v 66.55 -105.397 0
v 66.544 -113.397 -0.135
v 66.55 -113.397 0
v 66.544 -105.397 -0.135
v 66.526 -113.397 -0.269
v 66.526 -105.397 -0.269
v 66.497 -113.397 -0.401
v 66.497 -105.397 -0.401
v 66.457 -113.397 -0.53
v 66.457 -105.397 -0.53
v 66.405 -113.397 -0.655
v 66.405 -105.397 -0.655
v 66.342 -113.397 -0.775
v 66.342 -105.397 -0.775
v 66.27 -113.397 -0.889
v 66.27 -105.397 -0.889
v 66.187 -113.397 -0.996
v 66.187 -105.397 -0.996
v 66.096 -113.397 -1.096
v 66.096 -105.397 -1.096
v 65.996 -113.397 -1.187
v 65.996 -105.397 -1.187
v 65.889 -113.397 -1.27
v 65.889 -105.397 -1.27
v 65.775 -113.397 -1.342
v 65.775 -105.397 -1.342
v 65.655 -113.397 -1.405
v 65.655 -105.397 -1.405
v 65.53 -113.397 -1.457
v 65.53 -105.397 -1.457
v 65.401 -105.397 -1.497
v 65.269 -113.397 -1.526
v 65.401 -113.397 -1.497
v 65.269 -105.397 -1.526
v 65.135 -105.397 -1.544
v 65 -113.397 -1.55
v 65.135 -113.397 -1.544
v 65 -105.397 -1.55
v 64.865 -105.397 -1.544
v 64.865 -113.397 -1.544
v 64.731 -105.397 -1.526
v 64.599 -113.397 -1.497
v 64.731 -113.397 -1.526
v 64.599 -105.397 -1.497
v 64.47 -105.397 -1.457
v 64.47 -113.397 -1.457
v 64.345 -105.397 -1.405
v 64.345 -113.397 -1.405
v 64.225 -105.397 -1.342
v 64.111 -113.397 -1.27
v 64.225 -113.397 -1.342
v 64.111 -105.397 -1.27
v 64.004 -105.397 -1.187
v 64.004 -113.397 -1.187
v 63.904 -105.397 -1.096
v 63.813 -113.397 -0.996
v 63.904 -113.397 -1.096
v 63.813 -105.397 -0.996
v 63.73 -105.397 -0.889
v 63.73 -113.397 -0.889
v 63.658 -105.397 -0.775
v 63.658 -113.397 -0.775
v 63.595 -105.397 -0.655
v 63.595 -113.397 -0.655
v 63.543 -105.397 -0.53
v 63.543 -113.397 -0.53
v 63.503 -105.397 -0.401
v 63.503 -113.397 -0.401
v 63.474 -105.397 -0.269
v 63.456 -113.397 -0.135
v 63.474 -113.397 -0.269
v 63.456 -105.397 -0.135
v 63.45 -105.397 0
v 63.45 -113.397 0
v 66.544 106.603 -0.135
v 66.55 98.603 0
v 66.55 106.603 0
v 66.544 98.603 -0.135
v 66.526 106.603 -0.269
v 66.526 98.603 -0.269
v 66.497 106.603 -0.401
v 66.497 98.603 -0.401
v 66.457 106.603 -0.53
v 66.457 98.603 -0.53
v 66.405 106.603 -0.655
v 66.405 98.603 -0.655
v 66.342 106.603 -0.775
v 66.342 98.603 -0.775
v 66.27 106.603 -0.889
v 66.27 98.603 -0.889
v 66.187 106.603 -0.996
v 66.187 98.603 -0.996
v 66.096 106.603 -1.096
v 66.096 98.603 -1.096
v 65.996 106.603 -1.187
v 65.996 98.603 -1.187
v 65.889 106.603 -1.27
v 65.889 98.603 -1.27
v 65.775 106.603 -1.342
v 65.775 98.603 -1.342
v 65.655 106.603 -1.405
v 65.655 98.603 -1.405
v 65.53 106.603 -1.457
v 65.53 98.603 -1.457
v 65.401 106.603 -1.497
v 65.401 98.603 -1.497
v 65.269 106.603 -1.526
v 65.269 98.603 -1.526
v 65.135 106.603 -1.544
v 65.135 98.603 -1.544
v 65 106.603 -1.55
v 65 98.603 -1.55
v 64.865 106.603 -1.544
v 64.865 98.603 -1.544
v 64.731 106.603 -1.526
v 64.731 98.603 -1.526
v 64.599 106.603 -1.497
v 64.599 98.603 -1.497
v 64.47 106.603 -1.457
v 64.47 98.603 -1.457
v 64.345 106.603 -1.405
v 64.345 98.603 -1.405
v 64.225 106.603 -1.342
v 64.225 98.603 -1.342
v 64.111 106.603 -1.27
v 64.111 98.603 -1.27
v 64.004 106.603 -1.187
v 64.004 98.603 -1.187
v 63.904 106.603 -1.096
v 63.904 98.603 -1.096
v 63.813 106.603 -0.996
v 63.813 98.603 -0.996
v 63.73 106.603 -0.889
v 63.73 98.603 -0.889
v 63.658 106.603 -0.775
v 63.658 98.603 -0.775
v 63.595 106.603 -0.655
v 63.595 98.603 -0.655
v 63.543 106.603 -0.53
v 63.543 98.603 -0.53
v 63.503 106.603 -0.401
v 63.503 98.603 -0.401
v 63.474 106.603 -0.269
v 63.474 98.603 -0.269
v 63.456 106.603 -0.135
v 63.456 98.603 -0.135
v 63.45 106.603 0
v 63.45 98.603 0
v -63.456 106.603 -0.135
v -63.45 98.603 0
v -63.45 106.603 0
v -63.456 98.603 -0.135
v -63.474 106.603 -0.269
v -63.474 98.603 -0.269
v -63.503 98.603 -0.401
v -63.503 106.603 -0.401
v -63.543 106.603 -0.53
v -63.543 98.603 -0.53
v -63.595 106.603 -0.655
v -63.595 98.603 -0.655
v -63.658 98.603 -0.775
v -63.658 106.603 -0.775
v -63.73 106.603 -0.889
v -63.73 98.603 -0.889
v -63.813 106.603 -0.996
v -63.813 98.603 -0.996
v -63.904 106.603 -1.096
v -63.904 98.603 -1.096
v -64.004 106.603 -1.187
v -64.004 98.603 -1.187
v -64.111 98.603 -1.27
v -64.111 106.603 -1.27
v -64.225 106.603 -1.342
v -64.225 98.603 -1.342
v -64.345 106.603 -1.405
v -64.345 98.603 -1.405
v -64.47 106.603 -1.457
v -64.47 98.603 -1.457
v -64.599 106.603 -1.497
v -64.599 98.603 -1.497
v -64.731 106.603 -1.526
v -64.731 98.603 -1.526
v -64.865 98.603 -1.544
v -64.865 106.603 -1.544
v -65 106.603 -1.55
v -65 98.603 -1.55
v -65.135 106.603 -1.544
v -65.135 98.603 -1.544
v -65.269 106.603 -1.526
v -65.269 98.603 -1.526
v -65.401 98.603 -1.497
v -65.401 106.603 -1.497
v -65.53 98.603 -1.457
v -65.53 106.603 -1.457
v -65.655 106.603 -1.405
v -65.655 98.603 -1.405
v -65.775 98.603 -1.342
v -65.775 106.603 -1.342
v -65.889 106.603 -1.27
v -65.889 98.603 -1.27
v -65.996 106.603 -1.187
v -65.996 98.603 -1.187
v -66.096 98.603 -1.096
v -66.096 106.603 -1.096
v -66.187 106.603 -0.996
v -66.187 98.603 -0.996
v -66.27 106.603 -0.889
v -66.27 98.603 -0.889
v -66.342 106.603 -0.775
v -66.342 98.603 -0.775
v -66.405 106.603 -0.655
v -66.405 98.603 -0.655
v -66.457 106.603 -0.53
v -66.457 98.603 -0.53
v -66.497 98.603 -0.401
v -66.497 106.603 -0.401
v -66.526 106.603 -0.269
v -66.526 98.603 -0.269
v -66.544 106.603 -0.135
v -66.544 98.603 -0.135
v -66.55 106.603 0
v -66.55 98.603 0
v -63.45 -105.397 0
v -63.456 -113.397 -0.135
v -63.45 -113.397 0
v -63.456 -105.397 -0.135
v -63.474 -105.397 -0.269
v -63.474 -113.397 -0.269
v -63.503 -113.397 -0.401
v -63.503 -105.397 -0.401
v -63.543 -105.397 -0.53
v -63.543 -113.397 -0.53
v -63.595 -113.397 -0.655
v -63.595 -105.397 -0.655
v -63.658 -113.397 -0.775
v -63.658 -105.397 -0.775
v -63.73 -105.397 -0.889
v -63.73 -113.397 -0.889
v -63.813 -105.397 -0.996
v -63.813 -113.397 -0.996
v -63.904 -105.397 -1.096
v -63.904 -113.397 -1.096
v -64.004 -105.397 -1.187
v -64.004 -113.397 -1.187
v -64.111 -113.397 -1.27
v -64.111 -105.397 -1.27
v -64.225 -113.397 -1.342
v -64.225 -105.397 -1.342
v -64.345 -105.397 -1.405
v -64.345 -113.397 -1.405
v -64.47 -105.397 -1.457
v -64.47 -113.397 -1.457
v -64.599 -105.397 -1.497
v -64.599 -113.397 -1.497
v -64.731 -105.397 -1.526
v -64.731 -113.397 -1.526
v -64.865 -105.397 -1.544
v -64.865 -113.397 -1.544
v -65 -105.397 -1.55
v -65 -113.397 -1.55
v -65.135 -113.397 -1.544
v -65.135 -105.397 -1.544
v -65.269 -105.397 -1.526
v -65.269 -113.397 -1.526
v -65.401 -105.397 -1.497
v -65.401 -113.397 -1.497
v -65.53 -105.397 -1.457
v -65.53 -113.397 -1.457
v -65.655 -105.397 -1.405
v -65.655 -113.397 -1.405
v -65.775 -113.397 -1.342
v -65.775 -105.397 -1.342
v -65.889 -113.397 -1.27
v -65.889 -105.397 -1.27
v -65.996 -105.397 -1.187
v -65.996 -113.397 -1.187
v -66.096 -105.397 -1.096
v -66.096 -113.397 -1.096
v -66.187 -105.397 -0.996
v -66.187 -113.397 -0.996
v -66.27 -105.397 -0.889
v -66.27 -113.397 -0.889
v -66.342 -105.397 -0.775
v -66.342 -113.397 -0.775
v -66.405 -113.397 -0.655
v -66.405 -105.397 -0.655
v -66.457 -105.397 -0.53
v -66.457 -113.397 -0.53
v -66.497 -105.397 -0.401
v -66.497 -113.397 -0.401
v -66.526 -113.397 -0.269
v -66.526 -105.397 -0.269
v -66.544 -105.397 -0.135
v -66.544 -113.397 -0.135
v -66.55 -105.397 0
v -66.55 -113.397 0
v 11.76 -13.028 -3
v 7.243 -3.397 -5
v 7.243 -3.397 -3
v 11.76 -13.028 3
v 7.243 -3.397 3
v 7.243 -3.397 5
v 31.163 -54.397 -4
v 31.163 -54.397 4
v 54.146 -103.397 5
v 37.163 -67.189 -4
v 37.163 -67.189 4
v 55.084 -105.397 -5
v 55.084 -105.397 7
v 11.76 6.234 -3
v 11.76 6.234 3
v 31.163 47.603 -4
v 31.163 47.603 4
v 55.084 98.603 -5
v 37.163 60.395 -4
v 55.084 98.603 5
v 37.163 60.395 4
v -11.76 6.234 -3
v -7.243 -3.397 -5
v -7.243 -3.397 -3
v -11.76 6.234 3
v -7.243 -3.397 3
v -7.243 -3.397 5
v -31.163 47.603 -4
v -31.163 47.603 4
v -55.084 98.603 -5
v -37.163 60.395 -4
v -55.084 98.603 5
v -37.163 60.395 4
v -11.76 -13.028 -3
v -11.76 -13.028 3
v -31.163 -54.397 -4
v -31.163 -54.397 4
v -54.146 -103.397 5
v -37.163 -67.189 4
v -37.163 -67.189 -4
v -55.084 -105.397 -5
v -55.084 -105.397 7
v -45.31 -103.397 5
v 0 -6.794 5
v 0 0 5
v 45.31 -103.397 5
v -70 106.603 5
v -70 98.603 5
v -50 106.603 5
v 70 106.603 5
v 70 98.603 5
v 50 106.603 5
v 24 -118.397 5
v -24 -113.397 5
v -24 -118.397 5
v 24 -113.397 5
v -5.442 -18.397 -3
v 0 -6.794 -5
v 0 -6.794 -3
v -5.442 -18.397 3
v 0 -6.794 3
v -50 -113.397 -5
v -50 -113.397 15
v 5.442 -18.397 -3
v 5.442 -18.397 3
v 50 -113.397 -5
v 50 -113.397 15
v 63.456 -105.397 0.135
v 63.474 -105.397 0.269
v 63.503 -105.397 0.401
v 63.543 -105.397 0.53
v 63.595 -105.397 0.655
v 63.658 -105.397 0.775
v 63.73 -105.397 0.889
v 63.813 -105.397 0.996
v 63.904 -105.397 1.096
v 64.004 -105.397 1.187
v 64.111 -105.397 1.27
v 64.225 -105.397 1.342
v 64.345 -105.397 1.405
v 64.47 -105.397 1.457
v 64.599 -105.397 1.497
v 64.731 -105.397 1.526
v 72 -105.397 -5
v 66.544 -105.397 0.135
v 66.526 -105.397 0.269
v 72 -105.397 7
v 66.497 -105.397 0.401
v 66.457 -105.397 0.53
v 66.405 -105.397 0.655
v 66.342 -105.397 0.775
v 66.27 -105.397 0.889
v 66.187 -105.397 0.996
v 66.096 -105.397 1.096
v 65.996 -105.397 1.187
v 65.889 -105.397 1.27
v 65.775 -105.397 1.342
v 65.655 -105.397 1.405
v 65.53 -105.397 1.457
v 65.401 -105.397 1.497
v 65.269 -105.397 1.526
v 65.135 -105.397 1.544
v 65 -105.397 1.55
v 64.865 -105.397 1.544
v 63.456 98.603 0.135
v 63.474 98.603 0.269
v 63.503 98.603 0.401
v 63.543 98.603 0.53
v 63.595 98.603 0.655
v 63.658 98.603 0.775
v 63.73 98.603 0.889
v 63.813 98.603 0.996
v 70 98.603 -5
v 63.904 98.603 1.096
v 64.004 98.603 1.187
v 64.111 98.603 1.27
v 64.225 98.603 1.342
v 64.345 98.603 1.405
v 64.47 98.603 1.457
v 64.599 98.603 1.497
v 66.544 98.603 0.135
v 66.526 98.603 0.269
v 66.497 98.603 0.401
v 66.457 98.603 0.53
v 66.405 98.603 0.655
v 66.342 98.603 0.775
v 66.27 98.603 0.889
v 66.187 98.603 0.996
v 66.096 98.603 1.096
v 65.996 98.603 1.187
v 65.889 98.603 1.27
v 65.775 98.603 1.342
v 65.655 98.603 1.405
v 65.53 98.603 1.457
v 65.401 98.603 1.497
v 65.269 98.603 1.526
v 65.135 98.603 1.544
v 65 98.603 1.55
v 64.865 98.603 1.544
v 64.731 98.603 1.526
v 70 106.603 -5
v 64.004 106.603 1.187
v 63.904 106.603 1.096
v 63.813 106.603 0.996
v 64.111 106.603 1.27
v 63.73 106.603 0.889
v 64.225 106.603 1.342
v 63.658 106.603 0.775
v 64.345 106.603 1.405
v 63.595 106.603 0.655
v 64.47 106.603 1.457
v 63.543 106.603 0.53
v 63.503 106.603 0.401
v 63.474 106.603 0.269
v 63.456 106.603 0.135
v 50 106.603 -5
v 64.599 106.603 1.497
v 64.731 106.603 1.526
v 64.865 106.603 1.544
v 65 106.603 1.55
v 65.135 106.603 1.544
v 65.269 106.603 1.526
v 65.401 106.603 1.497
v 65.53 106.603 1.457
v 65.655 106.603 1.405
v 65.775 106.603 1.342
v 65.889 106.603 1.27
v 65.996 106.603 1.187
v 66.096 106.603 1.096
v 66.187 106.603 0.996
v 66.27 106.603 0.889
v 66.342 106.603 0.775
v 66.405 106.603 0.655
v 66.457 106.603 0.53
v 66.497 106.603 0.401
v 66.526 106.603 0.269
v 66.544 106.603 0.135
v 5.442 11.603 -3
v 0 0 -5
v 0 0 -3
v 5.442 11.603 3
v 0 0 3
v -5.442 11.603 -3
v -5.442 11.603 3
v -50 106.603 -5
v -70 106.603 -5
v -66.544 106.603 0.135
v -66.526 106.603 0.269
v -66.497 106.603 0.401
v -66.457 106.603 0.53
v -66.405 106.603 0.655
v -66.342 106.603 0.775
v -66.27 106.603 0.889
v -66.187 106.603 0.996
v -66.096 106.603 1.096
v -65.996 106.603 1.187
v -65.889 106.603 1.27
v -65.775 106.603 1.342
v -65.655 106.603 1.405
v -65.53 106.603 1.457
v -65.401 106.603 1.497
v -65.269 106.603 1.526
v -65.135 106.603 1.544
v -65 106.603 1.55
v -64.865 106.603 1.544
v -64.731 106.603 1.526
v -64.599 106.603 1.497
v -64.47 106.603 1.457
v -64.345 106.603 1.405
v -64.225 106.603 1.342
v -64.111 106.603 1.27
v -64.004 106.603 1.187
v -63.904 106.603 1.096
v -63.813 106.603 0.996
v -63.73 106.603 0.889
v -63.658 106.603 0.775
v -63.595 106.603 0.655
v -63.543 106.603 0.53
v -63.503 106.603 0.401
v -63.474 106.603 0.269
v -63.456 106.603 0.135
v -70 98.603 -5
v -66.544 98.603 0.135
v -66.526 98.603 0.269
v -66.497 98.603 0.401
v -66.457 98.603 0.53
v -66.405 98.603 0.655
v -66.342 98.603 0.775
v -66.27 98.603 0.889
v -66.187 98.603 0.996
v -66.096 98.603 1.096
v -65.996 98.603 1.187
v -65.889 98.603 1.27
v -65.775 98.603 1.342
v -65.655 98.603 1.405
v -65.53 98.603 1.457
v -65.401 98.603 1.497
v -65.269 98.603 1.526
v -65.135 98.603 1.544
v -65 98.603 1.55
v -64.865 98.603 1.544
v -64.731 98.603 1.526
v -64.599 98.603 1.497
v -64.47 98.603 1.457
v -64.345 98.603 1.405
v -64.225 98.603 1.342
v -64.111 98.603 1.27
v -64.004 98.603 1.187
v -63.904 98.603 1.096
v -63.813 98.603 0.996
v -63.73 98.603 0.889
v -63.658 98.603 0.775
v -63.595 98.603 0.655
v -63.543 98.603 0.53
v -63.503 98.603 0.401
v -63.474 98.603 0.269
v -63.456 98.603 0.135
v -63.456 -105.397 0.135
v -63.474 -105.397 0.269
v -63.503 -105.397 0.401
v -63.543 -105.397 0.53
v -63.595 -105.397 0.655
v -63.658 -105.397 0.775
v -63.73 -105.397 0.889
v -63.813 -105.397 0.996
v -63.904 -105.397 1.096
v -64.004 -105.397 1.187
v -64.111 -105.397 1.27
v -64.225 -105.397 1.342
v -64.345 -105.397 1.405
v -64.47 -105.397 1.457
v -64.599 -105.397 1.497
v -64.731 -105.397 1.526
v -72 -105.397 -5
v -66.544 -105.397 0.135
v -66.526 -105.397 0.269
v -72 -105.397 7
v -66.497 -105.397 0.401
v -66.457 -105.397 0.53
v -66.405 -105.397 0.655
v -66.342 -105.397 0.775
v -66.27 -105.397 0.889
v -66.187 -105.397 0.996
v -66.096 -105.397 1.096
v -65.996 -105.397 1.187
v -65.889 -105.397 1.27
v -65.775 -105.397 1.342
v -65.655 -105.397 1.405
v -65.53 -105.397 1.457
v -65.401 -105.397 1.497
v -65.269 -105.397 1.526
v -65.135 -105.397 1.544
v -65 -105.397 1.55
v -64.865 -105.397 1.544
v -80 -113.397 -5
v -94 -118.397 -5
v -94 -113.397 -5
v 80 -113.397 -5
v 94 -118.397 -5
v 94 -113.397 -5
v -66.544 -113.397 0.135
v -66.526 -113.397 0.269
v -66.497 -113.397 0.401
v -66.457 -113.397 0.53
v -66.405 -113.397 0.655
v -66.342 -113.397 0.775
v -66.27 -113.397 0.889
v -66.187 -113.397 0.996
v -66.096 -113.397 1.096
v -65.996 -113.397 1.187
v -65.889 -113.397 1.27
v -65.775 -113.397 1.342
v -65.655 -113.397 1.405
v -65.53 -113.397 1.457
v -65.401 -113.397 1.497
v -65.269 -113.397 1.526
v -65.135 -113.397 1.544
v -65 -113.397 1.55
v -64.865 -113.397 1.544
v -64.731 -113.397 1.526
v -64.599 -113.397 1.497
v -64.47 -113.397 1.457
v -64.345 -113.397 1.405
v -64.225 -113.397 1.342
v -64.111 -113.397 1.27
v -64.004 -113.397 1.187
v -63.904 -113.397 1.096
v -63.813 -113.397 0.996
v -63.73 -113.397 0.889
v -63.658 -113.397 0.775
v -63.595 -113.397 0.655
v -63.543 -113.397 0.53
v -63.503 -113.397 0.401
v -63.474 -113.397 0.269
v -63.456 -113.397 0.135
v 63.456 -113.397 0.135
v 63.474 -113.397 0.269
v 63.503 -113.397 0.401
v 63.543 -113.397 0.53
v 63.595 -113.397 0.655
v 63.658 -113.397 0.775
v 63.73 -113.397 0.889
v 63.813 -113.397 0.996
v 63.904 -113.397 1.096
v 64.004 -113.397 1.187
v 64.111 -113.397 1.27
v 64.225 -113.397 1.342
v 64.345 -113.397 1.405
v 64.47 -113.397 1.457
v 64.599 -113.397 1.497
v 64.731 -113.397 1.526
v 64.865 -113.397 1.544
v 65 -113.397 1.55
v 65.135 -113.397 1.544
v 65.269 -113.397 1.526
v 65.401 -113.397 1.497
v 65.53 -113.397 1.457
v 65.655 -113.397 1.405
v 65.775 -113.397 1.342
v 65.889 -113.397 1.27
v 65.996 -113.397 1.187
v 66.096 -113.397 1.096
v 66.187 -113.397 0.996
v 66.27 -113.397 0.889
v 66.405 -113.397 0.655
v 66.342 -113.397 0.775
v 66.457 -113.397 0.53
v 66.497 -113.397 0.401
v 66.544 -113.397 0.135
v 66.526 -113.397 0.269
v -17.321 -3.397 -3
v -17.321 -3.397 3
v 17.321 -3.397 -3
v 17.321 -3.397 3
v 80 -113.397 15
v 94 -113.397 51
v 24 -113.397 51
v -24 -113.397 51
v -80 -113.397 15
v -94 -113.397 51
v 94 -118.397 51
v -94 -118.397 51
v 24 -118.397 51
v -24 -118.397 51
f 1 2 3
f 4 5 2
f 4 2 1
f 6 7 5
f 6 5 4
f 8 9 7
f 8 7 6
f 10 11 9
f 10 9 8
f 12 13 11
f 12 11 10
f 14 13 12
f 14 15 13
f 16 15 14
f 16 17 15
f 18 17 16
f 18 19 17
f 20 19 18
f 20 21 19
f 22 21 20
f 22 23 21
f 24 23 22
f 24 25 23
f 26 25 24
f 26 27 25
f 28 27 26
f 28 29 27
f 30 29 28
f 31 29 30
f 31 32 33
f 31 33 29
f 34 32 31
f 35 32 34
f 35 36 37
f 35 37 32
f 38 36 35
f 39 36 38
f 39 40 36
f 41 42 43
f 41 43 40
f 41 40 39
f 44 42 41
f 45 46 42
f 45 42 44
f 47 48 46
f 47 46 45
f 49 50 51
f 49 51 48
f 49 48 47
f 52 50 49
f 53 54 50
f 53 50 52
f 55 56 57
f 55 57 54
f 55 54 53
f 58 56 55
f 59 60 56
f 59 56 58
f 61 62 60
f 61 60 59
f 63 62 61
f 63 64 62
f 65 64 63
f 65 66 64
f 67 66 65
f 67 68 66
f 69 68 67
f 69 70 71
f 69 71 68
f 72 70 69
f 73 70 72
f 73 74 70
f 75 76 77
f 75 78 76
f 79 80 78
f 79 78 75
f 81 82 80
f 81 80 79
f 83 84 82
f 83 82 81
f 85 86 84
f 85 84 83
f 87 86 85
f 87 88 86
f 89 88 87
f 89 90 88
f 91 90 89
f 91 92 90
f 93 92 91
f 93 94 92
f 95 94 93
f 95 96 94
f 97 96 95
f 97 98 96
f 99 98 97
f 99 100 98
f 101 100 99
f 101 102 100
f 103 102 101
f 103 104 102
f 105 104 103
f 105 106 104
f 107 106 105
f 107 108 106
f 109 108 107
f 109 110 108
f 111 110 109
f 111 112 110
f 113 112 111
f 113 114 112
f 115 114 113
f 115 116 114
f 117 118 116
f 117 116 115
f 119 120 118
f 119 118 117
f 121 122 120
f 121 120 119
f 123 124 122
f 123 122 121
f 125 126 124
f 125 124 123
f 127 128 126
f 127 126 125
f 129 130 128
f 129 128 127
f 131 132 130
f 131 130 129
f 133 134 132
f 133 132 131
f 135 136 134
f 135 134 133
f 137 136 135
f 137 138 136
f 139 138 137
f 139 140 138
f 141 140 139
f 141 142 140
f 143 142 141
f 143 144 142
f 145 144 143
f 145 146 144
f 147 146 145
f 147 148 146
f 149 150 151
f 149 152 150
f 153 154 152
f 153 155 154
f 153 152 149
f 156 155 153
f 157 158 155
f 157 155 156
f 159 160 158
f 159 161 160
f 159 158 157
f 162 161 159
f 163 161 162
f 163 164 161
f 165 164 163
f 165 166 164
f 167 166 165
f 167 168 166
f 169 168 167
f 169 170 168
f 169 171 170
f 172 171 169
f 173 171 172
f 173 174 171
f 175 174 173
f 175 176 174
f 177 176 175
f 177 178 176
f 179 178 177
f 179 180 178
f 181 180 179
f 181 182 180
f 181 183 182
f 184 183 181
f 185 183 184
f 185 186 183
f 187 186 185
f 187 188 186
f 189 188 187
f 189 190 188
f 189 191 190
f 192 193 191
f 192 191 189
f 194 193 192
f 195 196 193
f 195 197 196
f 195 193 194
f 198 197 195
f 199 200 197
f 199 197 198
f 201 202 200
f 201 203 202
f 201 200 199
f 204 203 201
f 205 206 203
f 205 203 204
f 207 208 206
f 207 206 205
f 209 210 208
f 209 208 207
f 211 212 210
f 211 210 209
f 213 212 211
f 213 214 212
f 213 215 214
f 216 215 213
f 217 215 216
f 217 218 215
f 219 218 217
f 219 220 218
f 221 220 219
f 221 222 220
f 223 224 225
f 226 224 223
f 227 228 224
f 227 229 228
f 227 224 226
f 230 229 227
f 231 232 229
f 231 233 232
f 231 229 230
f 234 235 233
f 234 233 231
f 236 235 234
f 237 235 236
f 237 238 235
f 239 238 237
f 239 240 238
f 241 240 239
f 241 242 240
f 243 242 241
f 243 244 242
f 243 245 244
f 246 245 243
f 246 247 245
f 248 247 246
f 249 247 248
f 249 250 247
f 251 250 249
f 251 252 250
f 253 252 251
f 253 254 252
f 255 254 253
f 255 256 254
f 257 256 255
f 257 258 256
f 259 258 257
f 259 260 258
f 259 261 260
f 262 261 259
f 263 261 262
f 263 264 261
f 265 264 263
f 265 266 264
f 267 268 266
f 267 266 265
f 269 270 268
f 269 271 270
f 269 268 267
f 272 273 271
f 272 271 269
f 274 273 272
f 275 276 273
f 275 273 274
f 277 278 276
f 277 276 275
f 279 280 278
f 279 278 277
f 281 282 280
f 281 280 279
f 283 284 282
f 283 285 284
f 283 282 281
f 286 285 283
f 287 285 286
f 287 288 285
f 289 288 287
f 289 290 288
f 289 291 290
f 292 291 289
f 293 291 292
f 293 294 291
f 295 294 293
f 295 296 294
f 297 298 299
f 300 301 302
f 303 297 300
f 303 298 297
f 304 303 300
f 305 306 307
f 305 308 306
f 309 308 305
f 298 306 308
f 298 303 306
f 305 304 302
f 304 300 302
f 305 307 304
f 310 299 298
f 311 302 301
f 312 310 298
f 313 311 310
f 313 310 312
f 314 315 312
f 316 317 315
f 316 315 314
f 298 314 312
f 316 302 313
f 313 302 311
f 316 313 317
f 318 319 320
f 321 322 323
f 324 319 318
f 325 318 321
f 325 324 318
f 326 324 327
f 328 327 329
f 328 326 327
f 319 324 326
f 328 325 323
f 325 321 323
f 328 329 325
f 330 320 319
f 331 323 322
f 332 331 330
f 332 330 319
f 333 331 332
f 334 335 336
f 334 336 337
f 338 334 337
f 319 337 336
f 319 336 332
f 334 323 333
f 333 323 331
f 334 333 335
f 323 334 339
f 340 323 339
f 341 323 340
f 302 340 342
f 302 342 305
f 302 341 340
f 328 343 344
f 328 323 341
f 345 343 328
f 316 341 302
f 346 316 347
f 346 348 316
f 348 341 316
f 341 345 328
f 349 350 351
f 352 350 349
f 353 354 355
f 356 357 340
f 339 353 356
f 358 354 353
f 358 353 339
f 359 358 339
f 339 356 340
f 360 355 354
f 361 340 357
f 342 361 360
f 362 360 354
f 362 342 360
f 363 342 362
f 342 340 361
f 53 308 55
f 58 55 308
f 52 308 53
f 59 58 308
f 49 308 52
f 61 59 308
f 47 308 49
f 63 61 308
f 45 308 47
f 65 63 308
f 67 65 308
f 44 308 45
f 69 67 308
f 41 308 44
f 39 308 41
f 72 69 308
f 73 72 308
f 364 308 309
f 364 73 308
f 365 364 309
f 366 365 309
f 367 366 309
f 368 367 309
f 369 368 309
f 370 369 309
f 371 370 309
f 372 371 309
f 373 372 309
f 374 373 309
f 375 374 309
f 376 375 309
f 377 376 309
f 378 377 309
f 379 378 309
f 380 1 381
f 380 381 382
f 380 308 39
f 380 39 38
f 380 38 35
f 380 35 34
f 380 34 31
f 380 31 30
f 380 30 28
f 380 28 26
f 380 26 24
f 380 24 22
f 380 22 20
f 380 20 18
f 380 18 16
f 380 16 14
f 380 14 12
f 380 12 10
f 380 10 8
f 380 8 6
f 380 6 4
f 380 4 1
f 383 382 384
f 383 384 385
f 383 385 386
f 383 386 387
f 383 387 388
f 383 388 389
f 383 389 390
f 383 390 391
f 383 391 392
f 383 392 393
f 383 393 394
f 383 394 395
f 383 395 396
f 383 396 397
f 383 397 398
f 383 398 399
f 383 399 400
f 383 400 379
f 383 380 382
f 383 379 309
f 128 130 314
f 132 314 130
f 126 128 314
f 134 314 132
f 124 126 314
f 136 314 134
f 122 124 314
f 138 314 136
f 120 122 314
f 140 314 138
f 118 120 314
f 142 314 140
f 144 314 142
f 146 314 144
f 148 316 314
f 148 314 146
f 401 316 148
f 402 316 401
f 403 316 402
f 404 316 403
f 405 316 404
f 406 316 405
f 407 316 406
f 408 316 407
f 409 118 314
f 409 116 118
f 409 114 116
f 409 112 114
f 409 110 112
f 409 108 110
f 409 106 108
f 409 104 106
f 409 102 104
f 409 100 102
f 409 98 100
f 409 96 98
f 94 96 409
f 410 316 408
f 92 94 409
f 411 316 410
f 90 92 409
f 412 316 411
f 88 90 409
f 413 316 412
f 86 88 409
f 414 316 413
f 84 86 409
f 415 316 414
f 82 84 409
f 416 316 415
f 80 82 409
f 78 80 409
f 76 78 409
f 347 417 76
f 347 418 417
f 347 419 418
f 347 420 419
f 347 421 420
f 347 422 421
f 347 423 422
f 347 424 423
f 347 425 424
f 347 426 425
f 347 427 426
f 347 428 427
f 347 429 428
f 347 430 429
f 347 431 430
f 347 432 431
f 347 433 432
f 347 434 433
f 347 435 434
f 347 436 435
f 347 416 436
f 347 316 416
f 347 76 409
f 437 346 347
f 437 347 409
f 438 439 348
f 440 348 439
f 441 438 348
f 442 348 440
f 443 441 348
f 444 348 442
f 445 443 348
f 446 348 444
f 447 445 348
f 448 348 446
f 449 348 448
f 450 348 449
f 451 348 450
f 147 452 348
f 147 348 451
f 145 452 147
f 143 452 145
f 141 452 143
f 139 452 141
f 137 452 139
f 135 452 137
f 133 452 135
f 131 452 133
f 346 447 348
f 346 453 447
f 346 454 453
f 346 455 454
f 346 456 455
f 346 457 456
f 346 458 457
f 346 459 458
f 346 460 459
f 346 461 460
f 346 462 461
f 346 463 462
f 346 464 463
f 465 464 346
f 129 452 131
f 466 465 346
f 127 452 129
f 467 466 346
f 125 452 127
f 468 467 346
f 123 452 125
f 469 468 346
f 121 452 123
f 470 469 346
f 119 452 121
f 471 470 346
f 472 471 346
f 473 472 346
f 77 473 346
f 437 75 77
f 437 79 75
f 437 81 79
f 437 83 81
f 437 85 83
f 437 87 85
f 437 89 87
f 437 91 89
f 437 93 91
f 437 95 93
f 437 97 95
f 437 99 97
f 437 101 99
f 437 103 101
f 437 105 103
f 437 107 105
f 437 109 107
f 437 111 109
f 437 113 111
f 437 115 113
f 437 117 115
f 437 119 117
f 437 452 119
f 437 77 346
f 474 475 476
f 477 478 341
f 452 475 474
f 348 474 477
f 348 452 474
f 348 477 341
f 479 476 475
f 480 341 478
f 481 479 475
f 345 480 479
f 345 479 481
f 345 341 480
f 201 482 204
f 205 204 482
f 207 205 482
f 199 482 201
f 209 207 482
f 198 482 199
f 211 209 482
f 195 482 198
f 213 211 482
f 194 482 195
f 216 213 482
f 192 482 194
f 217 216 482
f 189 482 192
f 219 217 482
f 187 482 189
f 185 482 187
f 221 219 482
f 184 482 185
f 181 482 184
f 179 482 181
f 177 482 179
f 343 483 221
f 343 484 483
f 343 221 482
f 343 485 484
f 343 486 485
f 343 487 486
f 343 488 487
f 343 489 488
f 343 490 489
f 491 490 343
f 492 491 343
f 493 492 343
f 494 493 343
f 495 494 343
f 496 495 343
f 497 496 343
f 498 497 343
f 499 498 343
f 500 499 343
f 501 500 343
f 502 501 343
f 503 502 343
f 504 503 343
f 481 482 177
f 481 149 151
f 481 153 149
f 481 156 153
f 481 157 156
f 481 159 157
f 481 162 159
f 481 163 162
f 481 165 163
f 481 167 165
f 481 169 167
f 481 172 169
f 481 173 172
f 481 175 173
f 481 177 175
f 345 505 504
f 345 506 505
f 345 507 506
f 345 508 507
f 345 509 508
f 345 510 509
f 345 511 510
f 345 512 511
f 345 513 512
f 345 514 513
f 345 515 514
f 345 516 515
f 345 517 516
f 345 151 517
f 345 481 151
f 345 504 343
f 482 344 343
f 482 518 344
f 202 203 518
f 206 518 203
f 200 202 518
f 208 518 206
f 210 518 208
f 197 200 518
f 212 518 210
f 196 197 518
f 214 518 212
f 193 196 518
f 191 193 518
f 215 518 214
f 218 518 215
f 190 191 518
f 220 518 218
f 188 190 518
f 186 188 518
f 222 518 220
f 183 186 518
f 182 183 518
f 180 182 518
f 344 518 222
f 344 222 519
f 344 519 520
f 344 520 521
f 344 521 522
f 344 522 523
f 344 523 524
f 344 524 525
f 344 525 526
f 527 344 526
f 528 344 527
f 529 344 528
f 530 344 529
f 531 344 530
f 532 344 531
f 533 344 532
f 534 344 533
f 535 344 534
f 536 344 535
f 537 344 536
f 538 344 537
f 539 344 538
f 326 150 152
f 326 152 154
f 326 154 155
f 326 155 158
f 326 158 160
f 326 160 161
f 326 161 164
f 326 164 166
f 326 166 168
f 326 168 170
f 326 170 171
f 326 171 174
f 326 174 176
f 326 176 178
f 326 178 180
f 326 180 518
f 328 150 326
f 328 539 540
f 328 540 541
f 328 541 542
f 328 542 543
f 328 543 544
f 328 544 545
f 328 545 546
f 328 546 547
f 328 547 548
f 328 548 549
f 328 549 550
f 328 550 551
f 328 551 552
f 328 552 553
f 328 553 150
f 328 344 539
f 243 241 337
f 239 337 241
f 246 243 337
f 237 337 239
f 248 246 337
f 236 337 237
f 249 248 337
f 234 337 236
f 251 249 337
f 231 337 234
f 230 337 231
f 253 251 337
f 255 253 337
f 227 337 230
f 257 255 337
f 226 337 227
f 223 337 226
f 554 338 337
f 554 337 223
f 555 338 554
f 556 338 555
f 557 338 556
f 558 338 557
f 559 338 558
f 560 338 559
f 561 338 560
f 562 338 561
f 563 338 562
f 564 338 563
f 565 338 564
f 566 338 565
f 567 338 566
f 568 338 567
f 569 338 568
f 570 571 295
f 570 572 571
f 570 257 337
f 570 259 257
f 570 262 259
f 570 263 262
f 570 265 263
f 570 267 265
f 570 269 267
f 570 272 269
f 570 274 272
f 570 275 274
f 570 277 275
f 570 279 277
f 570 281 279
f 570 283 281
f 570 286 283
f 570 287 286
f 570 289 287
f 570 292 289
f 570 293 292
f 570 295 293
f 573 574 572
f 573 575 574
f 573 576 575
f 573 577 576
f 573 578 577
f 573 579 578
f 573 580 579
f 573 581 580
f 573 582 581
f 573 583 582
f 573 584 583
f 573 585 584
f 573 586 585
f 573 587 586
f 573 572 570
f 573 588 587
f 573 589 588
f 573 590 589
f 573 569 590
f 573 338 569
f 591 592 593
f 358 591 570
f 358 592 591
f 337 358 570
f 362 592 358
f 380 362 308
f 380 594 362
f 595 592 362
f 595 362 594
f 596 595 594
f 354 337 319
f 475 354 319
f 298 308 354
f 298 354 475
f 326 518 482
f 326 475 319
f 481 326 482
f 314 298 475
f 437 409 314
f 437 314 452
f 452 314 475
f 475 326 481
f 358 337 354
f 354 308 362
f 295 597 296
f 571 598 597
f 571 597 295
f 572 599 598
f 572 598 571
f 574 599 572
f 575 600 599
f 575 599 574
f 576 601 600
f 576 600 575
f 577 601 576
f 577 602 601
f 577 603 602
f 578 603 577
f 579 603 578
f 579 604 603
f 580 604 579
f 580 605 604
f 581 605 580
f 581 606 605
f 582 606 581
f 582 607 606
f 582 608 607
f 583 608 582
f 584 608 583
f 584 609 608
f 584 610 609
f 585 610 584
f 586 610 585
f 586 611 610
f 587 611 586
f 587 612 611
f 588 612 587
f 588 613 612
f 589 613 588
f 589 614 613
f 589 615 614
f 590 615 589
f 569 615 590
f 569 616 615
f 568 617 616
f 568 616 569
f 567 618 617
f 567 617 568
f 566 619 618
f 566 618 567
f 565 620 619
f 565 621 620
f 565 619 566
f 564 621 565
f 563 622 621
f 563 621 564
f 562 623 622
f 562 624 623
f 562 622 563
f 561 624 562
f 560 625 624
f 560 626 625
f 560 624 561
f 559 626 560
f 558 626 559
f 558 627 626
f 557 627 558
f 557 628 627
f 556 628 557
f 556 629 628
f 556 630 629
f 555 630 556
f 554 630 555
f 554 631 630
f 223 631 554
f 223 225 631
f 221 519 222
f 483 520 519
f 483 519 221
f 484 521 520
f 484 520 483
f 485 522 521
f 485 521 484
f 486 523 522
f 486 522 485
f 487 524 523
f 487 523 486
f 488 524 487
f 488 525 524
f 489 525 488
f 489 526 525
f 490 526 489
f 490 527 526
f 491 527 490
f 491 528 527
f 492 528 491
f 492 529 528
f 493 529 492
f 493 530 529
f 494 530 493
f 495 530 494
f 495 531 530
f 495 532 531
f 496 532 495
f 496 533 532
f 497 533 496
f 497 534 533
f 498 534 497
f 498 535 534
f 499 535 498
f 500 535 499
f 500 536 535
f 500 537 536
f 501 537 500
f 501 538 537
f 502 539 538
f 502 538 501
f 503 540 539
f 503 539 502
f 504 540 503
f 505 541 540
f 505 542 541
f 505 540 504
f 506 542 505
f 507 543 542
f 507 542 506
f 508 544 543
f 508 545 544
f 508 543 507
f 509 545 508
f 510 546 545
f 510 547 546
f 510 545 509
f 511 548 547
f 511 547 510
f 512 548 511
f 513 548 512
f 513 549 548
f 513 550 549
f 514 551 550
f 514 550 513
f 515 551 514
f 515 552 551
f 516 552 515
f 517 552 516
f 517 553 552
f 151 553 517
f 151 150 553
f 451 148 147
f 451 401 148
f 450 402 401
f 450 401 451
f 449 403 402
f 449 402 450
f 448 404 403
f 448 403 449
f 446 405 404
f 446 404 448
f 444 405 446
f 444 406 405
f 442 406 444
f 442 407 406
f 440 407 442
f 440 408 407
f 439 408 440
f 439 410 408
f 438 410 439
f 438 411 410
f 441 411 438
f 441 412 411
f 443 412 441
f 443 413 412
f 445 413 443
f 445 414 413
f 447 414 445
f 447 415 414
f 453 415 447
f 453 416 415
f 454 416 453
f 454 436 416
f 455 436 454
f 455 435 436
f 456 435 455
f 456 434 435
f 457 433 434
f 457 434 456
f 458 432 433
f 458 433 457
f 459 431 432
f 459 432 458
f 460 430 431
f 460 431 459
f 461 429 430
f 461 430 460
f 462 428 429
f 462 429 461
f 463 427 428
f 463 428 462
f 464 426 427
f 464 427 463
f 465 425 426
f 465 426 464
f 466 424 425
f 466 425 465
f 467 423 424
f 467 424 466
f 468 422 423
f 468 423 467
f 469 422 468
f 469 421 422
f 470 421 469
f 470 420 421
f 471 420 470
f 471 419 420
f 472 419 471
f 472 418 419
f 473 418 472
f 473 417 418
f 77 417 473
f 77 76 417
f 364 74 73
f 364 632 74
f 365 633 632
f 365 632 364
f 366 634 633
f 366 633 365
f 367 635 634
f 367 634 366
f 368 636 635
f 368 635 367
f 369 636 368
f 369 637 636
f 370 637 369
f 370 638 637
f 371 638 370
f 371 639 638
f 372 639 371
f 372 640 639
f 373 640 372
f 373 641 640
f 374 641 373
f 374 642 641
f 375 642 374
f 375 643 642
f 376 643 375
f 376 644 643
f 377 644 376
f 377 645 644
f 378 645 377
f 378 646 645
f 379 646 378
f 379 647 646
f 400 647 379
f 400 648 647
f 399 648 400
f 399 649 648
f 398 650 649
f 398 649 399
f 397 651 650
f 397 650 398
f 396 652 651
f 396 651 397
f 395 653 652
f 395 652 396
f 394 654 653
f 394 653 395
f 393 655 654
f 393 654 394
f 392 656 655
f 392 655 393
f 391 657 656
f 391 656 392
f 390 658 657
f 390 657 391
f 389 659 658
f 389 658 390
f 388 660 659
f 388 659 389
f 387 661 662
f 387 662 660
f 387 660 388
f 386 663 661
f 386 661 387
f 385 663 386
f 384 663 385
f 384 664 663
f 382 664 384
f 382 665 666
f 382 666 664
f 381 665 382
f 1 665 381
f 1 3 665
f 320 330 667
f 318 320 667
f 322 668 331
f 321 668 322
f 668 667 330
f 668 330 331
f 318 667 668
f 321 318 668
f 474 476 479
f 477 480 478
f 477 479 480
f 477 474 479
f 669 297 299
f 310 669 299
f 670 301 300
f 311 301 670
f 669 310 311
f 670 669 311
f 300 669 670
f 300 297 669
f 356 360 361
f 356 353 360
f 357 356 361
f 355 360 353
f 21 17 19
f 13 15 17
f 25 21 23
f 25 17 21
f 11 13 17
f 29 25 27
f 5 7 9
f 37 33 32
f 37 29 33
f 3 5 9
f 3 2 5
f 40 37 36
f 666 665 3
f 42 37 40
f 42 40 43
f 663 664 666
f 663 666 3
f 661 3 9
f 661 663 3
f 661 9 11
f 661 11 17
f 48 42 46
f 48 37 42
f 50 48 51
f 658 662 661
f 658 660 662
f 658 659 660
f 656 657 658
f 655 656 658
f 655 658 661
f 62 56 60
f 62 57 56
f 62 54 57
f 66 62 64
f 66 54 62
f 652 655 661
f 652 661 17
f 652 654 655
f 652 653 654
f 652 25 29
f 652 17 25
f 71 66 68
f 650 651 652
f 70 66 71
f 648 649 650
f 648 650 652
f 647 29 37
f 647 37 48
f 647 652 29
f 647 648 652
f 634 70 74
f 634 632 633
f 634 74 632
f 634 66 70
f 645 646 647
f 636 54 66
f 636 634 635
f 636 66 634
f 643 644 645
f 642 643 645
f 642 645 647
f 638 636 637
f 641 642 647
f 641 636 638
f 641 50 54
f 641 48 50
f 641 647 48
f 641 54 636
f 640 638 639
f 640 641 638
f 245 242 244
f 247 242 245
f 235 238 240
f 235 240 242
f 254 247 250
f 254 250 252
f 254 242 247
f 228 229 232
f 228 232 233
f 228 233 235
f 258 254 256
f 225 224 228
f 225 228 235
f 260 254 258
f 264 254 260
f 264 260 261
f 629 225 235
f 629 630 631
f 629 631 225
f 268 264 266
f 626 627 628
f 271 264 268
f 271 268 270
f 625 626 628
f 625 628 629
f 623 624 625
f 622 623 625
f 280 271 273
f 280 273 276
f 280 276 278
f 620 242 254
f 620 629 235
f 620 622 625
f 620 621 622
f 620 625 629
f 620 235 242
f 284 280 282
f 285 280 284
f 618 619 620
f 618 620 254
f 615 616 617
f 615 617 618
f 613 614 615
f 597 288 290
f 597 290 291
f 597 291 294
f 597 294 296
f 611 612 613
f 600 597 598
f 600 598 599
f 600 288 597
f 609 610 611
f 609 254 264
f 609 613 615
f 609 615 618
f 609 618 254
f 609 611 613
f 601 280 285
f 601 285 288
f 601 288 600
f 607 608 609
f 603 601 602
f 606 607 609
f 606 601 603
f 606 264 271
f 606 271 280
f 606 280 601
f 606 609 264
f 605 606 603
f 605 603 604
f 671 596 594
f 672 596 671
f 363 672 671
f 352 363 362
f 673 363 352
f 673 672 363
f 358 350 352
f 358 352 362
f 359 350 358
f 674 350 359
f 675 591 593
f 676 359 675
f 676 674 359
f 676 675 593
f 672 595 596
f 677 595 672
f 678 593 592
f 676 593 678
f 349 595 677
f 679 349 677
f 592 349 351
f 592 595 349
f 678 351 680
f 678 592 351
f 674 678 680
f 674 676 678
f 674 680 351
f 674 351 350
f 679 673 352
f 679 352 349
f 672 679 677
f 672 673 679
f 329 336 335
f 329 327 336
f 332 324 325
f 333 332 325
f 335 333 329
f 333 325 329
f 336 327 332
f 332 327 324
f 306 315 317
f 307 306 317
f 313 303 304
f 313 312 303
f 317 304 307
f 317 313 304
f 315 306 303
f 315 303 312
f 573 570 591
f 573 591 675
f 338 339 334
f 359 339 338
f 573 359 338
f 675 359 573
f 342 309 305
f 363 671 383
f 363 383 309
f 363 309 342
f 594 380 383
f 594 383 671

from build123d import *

# Parameters (mm, degrees)
EXTRUDE_1_DEPTH     = 5
SKETCH_2_R          = 1.55
CUT_EXTRUDE_1_DEPTH = 234
EXTRUDE_3_DEPTH     = 3
SKETCH_4_W          = 188
SKETCH_4_H          = 10
EXTRUDE_4_DEPTH     = 5
SKETCH_5_W          = 70
SKETCH_5_H          = 46
EXTRUDE_5_DEPTH     = 5
EXTRUDE_6_DEPTH     = 4
CHAMFER_1_SIZE      = 10


with BuildPart() as part:
    # 草图1 → 凸台-拉伸1 (new, symmetric)
    with BuildSketch(Plane.XY):
        Polygon((-55.084006936, 98.602863112), (-7.242890373, -3.397136888), (0, 0), (-50, 106.602863112), (-70, 106.602863112), (-70, 98.602863112), align=None)
        Polygon((70, 106.602863112), (70, 98.602863112), (55.084006936, 98.602863112), (7.242890373, -3.397136888), (0, 0), (50, 106.602863112), align=None)
        Polygon((-70, -113.397136888), (-70, -105.397136888), (-55.084006936, -105.397136888), (-7.242890373, -3.397136888), (0, -6.794273777), (-50, -113.397136888), align=None)
        Polygon((55.084006936, -105.397136888), (7.242890373, -3.397136888), (0, -6.794273777), (50, -113.397136888), (70, -113.397136888), (70, -105.397136888), align=None)
        Polygon((-7.242890373, -3.397136888), (0, 0), (7.242890373, -3.397136888), align=None)
        Polygon((-7.242890373, -3.397136888), (7.242890373, -3.397136888), (0, -6.794273777), align=None)
    extrude(amount=EXTRUDE_1_DEPTH, both=True)

    # 草图2 → 切除-拉伸1 (cut)
    with BuildSketch(Plane(origin=(0, 106.602863112, 0), x_dir=(1, 0, 0), z_dir=(0, 1, 0))):
        with Locations(Location((-65, 0, 0), (0, 0, 180))):
            Circle(SKETCH_2_R)
        with Locations(Location((65, 0, 0), (0, 0, 180))):
            Circle(SKETCH_2_R)
    extrude(amount=-CUT_EXTRUDE_1_DEPTH, mode=Mode.SUBTRACT)

    # 草图3 → 凸台-拉伸3 (add, symmetric)
    with BuildSketch(Plane.XY):
        Polygon((8.660254038, 11.602863112), (-8.660254038, 11.602863112), (-17.320508076, -3.397136888), (-8.660254038, -18.397136888), (8.660254038, -18.397136888), (17.320508076, -3.397136888), align=None)
    extrude(amount=EXTRUDE_3_DEPTH, both=True)

    # 草图4 → 凸台-拉伸4 (add)
    with BuildSketch(Plane.XZ.offset(113.397136888)):
        Rectangle(SKETCH_4_W, SKETCH_4_H)
    extrude(amount=EXTRUDE_4_DEPTH)

    # 草图5 → 凸台-拉伸5 (add)
    with BuildSketch(Plane.XZ.offset(118.397136888)):
        with Locations((59, 28)):
            Rectangle(SKETCH_5_W, SKETCH_5_H)
        with Locations((-59, 28)):
            Rectangle(SKETCH_5_W, SKETCH_5_H)
    extrude(amount=-EXTRUDE_5_DEPTH)

    # 草图6 → 凸台-拉伸6 (add, symmetric)
    with BuildSketch(Plane.XY):
        Polygon((-31.163448655, 47.602863112), (-31.163448655, -54.397136888), (-37.163448655, -67.189480462), (-37.163448655, 60.395206685), align=None)
        Polygon((37.163448655, -67.189480462), (31.163448655, -54.397136888), (31.163448655, 47.602863112), (37.163448655, 60.395206685), align=None)
    extrude(amount=EXTRUDE_6_DEPTH, both=True)

    # 倒角1
    # the kernel refuses this chamfer: 10 mm, written as the material it adds along each edge
    with BuildSketch(Plane(origin=(-70, -113.397136888, 5), x_dir=(0, -0.0274958766105877, 0.9996219169112968), z_dir=(1, 0, 0))) as chamfer_1_piece_1_section:
        Polygon((CHAMFER_1_SIZE * 0.999621916911, -CHAMFER_1_SIZE * 0.0274958766106), (-CHAMFER_1_SIZE * 0.0274958766106, -CHAMFER_1_SIZE * 0.999621916911), (0, 0), align=None)
    chamfer_1_piece_1 = extrude(amount=45.71682988, mode=Mode.PRIVATE)
    chamfer_1_piece_1 = split(chamfer_1_piece_1, bisect_by=Plane(origin=(-58.48678517, -112.652054934, 8.358509751), z_dir=(-0.9053612966848448, 0.4246421110360305, 0)), keep=Keep.TOP, mode=Mode.PRIVATE)
    chamfer_1_piece_1 = split(chamfer_1_piece_1, bisect_by=Plane(origin=(-63.672942129, -105.397136888, 8.358509751), z_dir=(0, -1, 0)), keep=Keep.TOP, mode=Mode.PRIVATE)
    add(chamfer_1_piece_1)
    with BuildSketch(Plane(origin=(-70, -113.397136888, 5), x_dir=(0, -0.0274958766105877, 0.9996219169112968), z_dir=(1, 0, 0))) as chamfer_1_piece_2_section:
        Polygon((CHAMFER_1_SIZE * 0.999621916911, -CHAMFER_1_SIZE * 0.0274958766106), (-CHAMFER_1_SIZE * 0.0274958766106, -CHAMFER_1_SIZE * 0.999621916911), (0, 0), align=None)
    chamfer_1_piece_2 = extrude(amount=45.71682988, mode=Mode.PRIVATE)
    chamfer_1_piece_2 = split(chamfer_1_piece_2, bisect_by=Plane(origin=(-49.392291056, -112.10146662, 8.457184123), z_dir=(-0.9053612966848449, 0.42464211103603033, 0)), keep=Keep.TOP, mode=Mode.PRIVATE)
    chamfer_1_piece_2 = split(chamfer_1_piece_2, bisect_by=Plane(origin=(-56.635181429, -108.704329732, 8.457184123), z_dir=(0.9053612966848448, -0.4246421110360305, 0)), keep=Keep.TOP, mode=Mode.PRIVATE)
    chamfer_1_piece_2 = split(chamfer_1_piece_2, bisect_by=Plane(origin=(-53.013736242, -105.397136888, 8.457184123), z_dir=(0, -1, 0)), keep=Keep.TOP, mode=Mode.PRIVATE)
    add(chamfer_1_piece_2)
    with BuildSketch(Plane(origin=(-70, -113.397136888, 5), x_dir=(0, -0.0274958766105877, 0.9996219169112968), z_dir=(1, 0, 0))) as chamfer_1_piece_3_section:
        Polygon((CHAMFER_1_SIZE * 0.999621916911, -CHAMFER_1_SIZE * 0.0274958766106), (-CHAMFER_1_SIZE * 0.0274958766106, -CHAMFER_1_SIZE * 0.999621916911), (0, 0), align=None)
    chamfer_1_piece_3 = extrude(amount=45.71682988, mode=Mode.PRIVATE)
    chamfer_1_piece_3 = split(chamfer_1_piece_3, bisect_by=Plane(origin=(-46.659786315, -106.275610043, 5.402318693), z_dir=(-0.9053612966848449, 0.42464211103603033, 0)), keep=Keep.TOP, mode=Mode.PRIVATE)
    chamfer_1_piece_3 = split(chamfer_1_piece_3, bisect_by=Plane(origin=(-53.902676688, -102.878473155, 5.402318693), z_dir=(0.9053612966848448, -0.4246421110360305, 0)), keep=Keep.TOP, mode=Mode.PRIVATE)
    chamfer_1_piece_3 = split(chamfer_1_piece_3, bisect_by=Plane(origin=(-50.281231501, -105.397136888, 5.402318693), z_dir=(0, 1, 0)), keep=Keep.TOP, mode=Mode.PRIVATE)
    add(chamfer_1_piece_3)
    with BuildSketch(Plane(origin=(70, -113.397136888, 5), x_dir=(0, -0.027495876610584936, 0.9996219169112968), z_dir=(-1, 0, 0))) as chamfer_1_piece_4_section:
        Polygon((CHAMFER_1_SIZE * 0.999621916911, CHAMFER_1_SIZE * 0.0274958766106), (-CHAMFER_1_SIZE * 0.0274958766106, CHAMFER_1_SIZE * 0.999621916911), (0, 0), align=None)
    chamfer_1_piece_4 = extrude(amount=45.71682988, mode=Mode.PRIVATE)
    chamfer_1_piece_4 = split(chamfer_1_piece_4, bisect_by=Plane(origin=(63.672942129, -105.397136888, 8.358509751), z_dir=(0, -1, 0)), keep=Keep.TOP, mode=Mode.PRIVATE)
    chamfer_1_piece_4 = split(chamfer_1_piece_4, bisect_by=Plane(origin=(58.48678517, -112.652054934, 8.358509751), z_dir=(0.905361296684845, 0.4246421110360303, 0)), keep=Keep.TOP, mode=Mode.PRIVATE)
    add(chamfer_1_piece_4)
    with BuildSketch(Plane(origin=(70, -113.397136888, 5), x_dir=(0, -0.027495876610584936, 0.9996219169112968), z_dir=(-1, 0, 0))) as chamfer_1_piece_5_section:
        Polygon((CHAMFER_1_SIZE * 0.999621916911, CHAMFER_1_SIZE * 0.0274958766106), (-CHAMFER_1_SIZE * 0.0274958766106, CHAMFER_1_SIZE * 0.999621916911), (0, 0), align=None)
    chamfer_1_piece_5 = extrude(amount=45.71682988, mode=Mode.PRIVATE)
    chamfer_1_piece_5 = split(chamfer_1_piece_5, bisect_by=Plane(origin=(49.392291056, -112.10146662, 8.457184123), z_dir=(0.9053612966848449, 0.4246421110360304, 0)), keep=Keep.TOP, mode=Mode.PRIVATE)
    chamfer_1_piece_5 = split(chamfer_1_piece_5, bisect_by=Plane(origin=(53.013736242, -105.397136888, 8.457184123), z_dir=(0, -1, 0)), keep=Keep.TOP, mode=Mode.PRIVATE)
    chamfer_1_piece_5 = split(chamfer_1_piece_5, bisect_by=Plane(origin=(56.635181429, -108.704329732, 8.457184123), z_dir=(-0.905361296684845, -0.4246421110360303, 0)), keep=Keep.TOP, mode=Mode.PRIVATE)
    add(chamfer_1_piece_5)
    with BuildSketch(Plane(origin=(70, -113.397136888, 5), x_dir=(0, -0.027495876610584936, 0.9996219169112968), z_dir=(-1, 0, 0))) as chamfer_1_piece_6_section:
        Polygon((CHAMFER_1_SIZE * 0.999621916911, CHAMFER_1_SIZE * 0.0274958766106), (-CHAMFER_1_SIZE * 0.0274958766106, CHAMFER_1_SIZE * 0.999621916911), (0, 0), align=None)
    chamfer_1_piece_6 = extrude(amount=45.71682988, mode=Mode.PRIVATE)
    chamfer_1_piece_6 = split(chamfer_1_piece_6, bisect_by=Plane(origin=(46.659786315, -106.275610043, 5.402318693), z_dir=(0.9053612966848449, 0.4246421110360304, 0)), keep=Keep.TOP, mode=Mode.PRIVATE)
    chamfer_1_piece_6 = split(chamfer_1_piece_6, bisect_by=Plane(origin=(50.281231501, -105.397136888, 5.402318693), z_dir=(0, 1, 0)), keep=Keep.TOP, mode=Mode.PRIVATE)
    chamfer_1_piece_6 = split(chamfer_1_piece_6, bisect_by=Plane(origin=(53.902676688, -102.878473155, 5.402318693), z_dir=(-0.905361296684845, -0.4246421110360303, 0)), keep=Keep.TOP, mode=Mode.PRIVATE)
    add(chamfer_1_piece_6)
    with BuildSketch(Plane(origin=(70, -113.397136888, 5), x_dir=(0.9996219169112964, -0.02749587661059736, 0), z_dir=(0, 0, -1))) as chamfer_1_piece_7_section:
        Polygon((CHAMFER_1_SIZE * 0.999621916911, -CHAMFER_1_SIZE * 0.0274958766106), (-CHAMFER_1_SIZE * 0.0274958766106, -CHAMFER_1_SIZE * 0.999621916911), (0, 0), align=None)
    chamfer_1_piece_7 = extrude(amount=10, mode=Mode.PRIVATE)
    chamfer_1_piece_7 = split(chamfer_1_piece_7, bisect_by=Plane(origin=(73.457184123, -105.397136888, 0), z_dir=(0, -1, 0)), keep=Keep.TOP, mode=Mode.PRIVATE)
    add(chamfer_1_piece_7)
    with BuildSketch(Plane(origin=(-70, -113.397136888, -5), x_dir=(-0.9996219169112968, -0.027495876610586317, 0), z_dir=(0, 0, 1))) as chamfer_1_piece_8_section:
        Polygon((CHAMFER_1_SIZE * 0.999621916911, -CHAMFER_1_SIZE * 0.0274958766106), (-CHAMFER_1_SIZE * 0.0274958766106, -CHAMFER_1_SIZE * 0.999621916911), (0, 0), align=None)
    chamfer_1_piece_8 = extrude(amount=10, mode=Mode.PRIVATE)
    chamfer_1_piece_8 = split(chamfer_1_piece_8, bisect_by=Plane(origin=(-73.457184123, -105.397136888, 0), z_dir=(0, -1, 0)), keep=Keep.TOP, mode=Mode.PRIVATE)
    add(chamfer_1_piece_8)
    with BuildSketch(Plane(origin=(-70, -113.397136888, -5), x_dir=(-0.9996219169112968, -0.027495876610586317, 0), z_dir=(0, 0, 1))) as chamfer_1_piece_9a_section:
        Polygon((CHAMFER_1_SIZE * 0.999621916911, -CHAMFER_1_SIZE * 0.0274958766106), (-CHAMFER_1_SIZE * 0.0274958766106, -CHAMFER_1_SIZE * 0.999621916911), (0, 0), align=None)
    chamfer_1_piece_9a = extrude(amount=35.71682988, mode=Mode.PRIVATE)
    chamfer_1_piece_9a = split(chamfer_1_piece_9a, bisect_by=Plane(origin=(-73.457184123, -105.397136888, 17.85841494), z_dir=(0, -1, 0)), keep=Keep.TOP, mode=Mode.PRIVATE)
    chamfer_1_piece_9a = split(chamfer_1_piece_9a, bisect_by=Plane(origin=(-73.457184123, -110.402898176, 5), z_dir=(0, 0, 1)), keep=Keep.TOP, mode=Mode.PRIVATE)
    with BuildSketch(Plane(origin=(-95.71682988, -113.397136888, 5), x_dir=(0, -0.027495876610586317, 0.9996219169112968), z_dir=(1, 0, 0))) as chamfer_1_piece_9b_section:
        Polygon((CHAMFER_1_SIZE * 0.999621916911, -CHAMFER_1_SIZE * 0.0274958766106), (-CHAMFER_1_SIZE * 0.0274958766106, -CHAMFER_1_SIZE * 0.999621916911), (0, 0), align=None)
    chamfer_1_piece_9b = extrude(amount=71.433659759, mode=Mode.PRIVATE)
    chamfer_1_piece_9b = split(chamfer_1_piece_9b, bisect_by=Plane(origin=(-94, -110.402898176, 8.457184123), z_dir=(1, 0, 0)), keep=Keep.TOP, mode=Mode.PRIVATE)
    chamfer_1_piece_9b = split(chamfer_1_piece_9b, bisect_by=Plane(origin=(-82, -105.397136888, 8.457184123), z_dir=(0, -1, 0)), keep=Keep.TOP, mode=Mode.PRIVATE)
    chamfer_1_piece_9b = split(chamfer_1_piece_9b, bisect_by=Plane(origin=(-70, -110.402898176, 8.457184123), z_dir=(-1, 0, 0)), keep=Keep.TOP, mode=Mode.PRIVATE)
    chamfer_1_piece_9 = chamfer_1_piece_9a & chamfer_1_piece_9b
    add(chamfer_1_piece_9)
    with BuildSketch(Plane(origin=(70, -113.397136888, 30.71682988), x_dir=(0.9996219169112968, -0.0274958766105877, 0), z_dir=(0, 0, -1))) as chamfer_1_piece_10a_section:
        Polygon((CHAMFER_1_SIZE * 0.999621916911, -CHAMFER_1_SIZE * 0.0274958766106), (-CHAMFER_1_SIZE * 0.0274958766106, -CHAMFER_1_SIZE * 0.999621916911), (0, 0), align=None)
    chamfer_1_piece_10a = extrude(amount=35.71682988, mode=Mode.PRIVATE)
    chamfer_1_piece_10a = split(chamfer_1_piece_10a, bisect_by=Plane(origin=(73.457184123, -105.397136888, 17.85841494), z_dir=(0, -1, 0)), keep=Keep.TOP, mode=Mode.PRIVATE)
    chamfer_1_piece_10a = split(chamfer_1_piece_10a, bisect_by=Plane(origin=(73.457184123, -110.402898176, 5), z_dir=(0, 0, 1)), keep=Keep.TOP, mode=Mode.PRIVATE)
    with BuildSketch(Plane(origin=(95.71682988, -113.397136888, 5), x_dir=(0, -0.027495876610586317, 0.9996219169112968), z_dir=(-1, 0, 0))) as chamfer_1_piece_10b_section:
        Polygon((CHAMFER_1_SIZE * 0.999621916911, CHAMFER_1_SIZE * 0.0274958766106), (-CHAMFER_1_SIZE * 0.0274958766106, CHAMFER_1_SIZE * 0.999621916911), (0, 0), align=None)
    chamfer_1_piece_10b = extrude(amount=71.433659759, mode=Mode.PRIVATE)
    chamfer_1_piece_10b = split(chamfer_1_piece_10b, bisect_by=Plane(origin=(94, -110.402898176, 8.457184123), z_dir=(-1, 0, 0)), keep=Keep.TOP, mode=Mode.PRIVATE)
    chamfer_1_piece_10b = split(chamfer_1_piece_10b, bisect_by=Plane(origin=(70, -110.402898176, 8.457184123), z_dir=(1, 0, 0)), keep=Keep.TOP, mode=Mode.PRIVATE)
    chamfer_1_piece_10b = split(chamfer_1_piece_10b, bisect_by=Plane(origin=(82, -105.397136888, 8.457184123), z_dir=(0, -1, 0)), keep=Keep.TOP, mode=Mode.PRIVATE)
    chamfer_1_piece_10 = chamfer_1_piece_10a & chamfer_1_piece_10b
    add(chamfer_1_piece_10)


solid = part.part
